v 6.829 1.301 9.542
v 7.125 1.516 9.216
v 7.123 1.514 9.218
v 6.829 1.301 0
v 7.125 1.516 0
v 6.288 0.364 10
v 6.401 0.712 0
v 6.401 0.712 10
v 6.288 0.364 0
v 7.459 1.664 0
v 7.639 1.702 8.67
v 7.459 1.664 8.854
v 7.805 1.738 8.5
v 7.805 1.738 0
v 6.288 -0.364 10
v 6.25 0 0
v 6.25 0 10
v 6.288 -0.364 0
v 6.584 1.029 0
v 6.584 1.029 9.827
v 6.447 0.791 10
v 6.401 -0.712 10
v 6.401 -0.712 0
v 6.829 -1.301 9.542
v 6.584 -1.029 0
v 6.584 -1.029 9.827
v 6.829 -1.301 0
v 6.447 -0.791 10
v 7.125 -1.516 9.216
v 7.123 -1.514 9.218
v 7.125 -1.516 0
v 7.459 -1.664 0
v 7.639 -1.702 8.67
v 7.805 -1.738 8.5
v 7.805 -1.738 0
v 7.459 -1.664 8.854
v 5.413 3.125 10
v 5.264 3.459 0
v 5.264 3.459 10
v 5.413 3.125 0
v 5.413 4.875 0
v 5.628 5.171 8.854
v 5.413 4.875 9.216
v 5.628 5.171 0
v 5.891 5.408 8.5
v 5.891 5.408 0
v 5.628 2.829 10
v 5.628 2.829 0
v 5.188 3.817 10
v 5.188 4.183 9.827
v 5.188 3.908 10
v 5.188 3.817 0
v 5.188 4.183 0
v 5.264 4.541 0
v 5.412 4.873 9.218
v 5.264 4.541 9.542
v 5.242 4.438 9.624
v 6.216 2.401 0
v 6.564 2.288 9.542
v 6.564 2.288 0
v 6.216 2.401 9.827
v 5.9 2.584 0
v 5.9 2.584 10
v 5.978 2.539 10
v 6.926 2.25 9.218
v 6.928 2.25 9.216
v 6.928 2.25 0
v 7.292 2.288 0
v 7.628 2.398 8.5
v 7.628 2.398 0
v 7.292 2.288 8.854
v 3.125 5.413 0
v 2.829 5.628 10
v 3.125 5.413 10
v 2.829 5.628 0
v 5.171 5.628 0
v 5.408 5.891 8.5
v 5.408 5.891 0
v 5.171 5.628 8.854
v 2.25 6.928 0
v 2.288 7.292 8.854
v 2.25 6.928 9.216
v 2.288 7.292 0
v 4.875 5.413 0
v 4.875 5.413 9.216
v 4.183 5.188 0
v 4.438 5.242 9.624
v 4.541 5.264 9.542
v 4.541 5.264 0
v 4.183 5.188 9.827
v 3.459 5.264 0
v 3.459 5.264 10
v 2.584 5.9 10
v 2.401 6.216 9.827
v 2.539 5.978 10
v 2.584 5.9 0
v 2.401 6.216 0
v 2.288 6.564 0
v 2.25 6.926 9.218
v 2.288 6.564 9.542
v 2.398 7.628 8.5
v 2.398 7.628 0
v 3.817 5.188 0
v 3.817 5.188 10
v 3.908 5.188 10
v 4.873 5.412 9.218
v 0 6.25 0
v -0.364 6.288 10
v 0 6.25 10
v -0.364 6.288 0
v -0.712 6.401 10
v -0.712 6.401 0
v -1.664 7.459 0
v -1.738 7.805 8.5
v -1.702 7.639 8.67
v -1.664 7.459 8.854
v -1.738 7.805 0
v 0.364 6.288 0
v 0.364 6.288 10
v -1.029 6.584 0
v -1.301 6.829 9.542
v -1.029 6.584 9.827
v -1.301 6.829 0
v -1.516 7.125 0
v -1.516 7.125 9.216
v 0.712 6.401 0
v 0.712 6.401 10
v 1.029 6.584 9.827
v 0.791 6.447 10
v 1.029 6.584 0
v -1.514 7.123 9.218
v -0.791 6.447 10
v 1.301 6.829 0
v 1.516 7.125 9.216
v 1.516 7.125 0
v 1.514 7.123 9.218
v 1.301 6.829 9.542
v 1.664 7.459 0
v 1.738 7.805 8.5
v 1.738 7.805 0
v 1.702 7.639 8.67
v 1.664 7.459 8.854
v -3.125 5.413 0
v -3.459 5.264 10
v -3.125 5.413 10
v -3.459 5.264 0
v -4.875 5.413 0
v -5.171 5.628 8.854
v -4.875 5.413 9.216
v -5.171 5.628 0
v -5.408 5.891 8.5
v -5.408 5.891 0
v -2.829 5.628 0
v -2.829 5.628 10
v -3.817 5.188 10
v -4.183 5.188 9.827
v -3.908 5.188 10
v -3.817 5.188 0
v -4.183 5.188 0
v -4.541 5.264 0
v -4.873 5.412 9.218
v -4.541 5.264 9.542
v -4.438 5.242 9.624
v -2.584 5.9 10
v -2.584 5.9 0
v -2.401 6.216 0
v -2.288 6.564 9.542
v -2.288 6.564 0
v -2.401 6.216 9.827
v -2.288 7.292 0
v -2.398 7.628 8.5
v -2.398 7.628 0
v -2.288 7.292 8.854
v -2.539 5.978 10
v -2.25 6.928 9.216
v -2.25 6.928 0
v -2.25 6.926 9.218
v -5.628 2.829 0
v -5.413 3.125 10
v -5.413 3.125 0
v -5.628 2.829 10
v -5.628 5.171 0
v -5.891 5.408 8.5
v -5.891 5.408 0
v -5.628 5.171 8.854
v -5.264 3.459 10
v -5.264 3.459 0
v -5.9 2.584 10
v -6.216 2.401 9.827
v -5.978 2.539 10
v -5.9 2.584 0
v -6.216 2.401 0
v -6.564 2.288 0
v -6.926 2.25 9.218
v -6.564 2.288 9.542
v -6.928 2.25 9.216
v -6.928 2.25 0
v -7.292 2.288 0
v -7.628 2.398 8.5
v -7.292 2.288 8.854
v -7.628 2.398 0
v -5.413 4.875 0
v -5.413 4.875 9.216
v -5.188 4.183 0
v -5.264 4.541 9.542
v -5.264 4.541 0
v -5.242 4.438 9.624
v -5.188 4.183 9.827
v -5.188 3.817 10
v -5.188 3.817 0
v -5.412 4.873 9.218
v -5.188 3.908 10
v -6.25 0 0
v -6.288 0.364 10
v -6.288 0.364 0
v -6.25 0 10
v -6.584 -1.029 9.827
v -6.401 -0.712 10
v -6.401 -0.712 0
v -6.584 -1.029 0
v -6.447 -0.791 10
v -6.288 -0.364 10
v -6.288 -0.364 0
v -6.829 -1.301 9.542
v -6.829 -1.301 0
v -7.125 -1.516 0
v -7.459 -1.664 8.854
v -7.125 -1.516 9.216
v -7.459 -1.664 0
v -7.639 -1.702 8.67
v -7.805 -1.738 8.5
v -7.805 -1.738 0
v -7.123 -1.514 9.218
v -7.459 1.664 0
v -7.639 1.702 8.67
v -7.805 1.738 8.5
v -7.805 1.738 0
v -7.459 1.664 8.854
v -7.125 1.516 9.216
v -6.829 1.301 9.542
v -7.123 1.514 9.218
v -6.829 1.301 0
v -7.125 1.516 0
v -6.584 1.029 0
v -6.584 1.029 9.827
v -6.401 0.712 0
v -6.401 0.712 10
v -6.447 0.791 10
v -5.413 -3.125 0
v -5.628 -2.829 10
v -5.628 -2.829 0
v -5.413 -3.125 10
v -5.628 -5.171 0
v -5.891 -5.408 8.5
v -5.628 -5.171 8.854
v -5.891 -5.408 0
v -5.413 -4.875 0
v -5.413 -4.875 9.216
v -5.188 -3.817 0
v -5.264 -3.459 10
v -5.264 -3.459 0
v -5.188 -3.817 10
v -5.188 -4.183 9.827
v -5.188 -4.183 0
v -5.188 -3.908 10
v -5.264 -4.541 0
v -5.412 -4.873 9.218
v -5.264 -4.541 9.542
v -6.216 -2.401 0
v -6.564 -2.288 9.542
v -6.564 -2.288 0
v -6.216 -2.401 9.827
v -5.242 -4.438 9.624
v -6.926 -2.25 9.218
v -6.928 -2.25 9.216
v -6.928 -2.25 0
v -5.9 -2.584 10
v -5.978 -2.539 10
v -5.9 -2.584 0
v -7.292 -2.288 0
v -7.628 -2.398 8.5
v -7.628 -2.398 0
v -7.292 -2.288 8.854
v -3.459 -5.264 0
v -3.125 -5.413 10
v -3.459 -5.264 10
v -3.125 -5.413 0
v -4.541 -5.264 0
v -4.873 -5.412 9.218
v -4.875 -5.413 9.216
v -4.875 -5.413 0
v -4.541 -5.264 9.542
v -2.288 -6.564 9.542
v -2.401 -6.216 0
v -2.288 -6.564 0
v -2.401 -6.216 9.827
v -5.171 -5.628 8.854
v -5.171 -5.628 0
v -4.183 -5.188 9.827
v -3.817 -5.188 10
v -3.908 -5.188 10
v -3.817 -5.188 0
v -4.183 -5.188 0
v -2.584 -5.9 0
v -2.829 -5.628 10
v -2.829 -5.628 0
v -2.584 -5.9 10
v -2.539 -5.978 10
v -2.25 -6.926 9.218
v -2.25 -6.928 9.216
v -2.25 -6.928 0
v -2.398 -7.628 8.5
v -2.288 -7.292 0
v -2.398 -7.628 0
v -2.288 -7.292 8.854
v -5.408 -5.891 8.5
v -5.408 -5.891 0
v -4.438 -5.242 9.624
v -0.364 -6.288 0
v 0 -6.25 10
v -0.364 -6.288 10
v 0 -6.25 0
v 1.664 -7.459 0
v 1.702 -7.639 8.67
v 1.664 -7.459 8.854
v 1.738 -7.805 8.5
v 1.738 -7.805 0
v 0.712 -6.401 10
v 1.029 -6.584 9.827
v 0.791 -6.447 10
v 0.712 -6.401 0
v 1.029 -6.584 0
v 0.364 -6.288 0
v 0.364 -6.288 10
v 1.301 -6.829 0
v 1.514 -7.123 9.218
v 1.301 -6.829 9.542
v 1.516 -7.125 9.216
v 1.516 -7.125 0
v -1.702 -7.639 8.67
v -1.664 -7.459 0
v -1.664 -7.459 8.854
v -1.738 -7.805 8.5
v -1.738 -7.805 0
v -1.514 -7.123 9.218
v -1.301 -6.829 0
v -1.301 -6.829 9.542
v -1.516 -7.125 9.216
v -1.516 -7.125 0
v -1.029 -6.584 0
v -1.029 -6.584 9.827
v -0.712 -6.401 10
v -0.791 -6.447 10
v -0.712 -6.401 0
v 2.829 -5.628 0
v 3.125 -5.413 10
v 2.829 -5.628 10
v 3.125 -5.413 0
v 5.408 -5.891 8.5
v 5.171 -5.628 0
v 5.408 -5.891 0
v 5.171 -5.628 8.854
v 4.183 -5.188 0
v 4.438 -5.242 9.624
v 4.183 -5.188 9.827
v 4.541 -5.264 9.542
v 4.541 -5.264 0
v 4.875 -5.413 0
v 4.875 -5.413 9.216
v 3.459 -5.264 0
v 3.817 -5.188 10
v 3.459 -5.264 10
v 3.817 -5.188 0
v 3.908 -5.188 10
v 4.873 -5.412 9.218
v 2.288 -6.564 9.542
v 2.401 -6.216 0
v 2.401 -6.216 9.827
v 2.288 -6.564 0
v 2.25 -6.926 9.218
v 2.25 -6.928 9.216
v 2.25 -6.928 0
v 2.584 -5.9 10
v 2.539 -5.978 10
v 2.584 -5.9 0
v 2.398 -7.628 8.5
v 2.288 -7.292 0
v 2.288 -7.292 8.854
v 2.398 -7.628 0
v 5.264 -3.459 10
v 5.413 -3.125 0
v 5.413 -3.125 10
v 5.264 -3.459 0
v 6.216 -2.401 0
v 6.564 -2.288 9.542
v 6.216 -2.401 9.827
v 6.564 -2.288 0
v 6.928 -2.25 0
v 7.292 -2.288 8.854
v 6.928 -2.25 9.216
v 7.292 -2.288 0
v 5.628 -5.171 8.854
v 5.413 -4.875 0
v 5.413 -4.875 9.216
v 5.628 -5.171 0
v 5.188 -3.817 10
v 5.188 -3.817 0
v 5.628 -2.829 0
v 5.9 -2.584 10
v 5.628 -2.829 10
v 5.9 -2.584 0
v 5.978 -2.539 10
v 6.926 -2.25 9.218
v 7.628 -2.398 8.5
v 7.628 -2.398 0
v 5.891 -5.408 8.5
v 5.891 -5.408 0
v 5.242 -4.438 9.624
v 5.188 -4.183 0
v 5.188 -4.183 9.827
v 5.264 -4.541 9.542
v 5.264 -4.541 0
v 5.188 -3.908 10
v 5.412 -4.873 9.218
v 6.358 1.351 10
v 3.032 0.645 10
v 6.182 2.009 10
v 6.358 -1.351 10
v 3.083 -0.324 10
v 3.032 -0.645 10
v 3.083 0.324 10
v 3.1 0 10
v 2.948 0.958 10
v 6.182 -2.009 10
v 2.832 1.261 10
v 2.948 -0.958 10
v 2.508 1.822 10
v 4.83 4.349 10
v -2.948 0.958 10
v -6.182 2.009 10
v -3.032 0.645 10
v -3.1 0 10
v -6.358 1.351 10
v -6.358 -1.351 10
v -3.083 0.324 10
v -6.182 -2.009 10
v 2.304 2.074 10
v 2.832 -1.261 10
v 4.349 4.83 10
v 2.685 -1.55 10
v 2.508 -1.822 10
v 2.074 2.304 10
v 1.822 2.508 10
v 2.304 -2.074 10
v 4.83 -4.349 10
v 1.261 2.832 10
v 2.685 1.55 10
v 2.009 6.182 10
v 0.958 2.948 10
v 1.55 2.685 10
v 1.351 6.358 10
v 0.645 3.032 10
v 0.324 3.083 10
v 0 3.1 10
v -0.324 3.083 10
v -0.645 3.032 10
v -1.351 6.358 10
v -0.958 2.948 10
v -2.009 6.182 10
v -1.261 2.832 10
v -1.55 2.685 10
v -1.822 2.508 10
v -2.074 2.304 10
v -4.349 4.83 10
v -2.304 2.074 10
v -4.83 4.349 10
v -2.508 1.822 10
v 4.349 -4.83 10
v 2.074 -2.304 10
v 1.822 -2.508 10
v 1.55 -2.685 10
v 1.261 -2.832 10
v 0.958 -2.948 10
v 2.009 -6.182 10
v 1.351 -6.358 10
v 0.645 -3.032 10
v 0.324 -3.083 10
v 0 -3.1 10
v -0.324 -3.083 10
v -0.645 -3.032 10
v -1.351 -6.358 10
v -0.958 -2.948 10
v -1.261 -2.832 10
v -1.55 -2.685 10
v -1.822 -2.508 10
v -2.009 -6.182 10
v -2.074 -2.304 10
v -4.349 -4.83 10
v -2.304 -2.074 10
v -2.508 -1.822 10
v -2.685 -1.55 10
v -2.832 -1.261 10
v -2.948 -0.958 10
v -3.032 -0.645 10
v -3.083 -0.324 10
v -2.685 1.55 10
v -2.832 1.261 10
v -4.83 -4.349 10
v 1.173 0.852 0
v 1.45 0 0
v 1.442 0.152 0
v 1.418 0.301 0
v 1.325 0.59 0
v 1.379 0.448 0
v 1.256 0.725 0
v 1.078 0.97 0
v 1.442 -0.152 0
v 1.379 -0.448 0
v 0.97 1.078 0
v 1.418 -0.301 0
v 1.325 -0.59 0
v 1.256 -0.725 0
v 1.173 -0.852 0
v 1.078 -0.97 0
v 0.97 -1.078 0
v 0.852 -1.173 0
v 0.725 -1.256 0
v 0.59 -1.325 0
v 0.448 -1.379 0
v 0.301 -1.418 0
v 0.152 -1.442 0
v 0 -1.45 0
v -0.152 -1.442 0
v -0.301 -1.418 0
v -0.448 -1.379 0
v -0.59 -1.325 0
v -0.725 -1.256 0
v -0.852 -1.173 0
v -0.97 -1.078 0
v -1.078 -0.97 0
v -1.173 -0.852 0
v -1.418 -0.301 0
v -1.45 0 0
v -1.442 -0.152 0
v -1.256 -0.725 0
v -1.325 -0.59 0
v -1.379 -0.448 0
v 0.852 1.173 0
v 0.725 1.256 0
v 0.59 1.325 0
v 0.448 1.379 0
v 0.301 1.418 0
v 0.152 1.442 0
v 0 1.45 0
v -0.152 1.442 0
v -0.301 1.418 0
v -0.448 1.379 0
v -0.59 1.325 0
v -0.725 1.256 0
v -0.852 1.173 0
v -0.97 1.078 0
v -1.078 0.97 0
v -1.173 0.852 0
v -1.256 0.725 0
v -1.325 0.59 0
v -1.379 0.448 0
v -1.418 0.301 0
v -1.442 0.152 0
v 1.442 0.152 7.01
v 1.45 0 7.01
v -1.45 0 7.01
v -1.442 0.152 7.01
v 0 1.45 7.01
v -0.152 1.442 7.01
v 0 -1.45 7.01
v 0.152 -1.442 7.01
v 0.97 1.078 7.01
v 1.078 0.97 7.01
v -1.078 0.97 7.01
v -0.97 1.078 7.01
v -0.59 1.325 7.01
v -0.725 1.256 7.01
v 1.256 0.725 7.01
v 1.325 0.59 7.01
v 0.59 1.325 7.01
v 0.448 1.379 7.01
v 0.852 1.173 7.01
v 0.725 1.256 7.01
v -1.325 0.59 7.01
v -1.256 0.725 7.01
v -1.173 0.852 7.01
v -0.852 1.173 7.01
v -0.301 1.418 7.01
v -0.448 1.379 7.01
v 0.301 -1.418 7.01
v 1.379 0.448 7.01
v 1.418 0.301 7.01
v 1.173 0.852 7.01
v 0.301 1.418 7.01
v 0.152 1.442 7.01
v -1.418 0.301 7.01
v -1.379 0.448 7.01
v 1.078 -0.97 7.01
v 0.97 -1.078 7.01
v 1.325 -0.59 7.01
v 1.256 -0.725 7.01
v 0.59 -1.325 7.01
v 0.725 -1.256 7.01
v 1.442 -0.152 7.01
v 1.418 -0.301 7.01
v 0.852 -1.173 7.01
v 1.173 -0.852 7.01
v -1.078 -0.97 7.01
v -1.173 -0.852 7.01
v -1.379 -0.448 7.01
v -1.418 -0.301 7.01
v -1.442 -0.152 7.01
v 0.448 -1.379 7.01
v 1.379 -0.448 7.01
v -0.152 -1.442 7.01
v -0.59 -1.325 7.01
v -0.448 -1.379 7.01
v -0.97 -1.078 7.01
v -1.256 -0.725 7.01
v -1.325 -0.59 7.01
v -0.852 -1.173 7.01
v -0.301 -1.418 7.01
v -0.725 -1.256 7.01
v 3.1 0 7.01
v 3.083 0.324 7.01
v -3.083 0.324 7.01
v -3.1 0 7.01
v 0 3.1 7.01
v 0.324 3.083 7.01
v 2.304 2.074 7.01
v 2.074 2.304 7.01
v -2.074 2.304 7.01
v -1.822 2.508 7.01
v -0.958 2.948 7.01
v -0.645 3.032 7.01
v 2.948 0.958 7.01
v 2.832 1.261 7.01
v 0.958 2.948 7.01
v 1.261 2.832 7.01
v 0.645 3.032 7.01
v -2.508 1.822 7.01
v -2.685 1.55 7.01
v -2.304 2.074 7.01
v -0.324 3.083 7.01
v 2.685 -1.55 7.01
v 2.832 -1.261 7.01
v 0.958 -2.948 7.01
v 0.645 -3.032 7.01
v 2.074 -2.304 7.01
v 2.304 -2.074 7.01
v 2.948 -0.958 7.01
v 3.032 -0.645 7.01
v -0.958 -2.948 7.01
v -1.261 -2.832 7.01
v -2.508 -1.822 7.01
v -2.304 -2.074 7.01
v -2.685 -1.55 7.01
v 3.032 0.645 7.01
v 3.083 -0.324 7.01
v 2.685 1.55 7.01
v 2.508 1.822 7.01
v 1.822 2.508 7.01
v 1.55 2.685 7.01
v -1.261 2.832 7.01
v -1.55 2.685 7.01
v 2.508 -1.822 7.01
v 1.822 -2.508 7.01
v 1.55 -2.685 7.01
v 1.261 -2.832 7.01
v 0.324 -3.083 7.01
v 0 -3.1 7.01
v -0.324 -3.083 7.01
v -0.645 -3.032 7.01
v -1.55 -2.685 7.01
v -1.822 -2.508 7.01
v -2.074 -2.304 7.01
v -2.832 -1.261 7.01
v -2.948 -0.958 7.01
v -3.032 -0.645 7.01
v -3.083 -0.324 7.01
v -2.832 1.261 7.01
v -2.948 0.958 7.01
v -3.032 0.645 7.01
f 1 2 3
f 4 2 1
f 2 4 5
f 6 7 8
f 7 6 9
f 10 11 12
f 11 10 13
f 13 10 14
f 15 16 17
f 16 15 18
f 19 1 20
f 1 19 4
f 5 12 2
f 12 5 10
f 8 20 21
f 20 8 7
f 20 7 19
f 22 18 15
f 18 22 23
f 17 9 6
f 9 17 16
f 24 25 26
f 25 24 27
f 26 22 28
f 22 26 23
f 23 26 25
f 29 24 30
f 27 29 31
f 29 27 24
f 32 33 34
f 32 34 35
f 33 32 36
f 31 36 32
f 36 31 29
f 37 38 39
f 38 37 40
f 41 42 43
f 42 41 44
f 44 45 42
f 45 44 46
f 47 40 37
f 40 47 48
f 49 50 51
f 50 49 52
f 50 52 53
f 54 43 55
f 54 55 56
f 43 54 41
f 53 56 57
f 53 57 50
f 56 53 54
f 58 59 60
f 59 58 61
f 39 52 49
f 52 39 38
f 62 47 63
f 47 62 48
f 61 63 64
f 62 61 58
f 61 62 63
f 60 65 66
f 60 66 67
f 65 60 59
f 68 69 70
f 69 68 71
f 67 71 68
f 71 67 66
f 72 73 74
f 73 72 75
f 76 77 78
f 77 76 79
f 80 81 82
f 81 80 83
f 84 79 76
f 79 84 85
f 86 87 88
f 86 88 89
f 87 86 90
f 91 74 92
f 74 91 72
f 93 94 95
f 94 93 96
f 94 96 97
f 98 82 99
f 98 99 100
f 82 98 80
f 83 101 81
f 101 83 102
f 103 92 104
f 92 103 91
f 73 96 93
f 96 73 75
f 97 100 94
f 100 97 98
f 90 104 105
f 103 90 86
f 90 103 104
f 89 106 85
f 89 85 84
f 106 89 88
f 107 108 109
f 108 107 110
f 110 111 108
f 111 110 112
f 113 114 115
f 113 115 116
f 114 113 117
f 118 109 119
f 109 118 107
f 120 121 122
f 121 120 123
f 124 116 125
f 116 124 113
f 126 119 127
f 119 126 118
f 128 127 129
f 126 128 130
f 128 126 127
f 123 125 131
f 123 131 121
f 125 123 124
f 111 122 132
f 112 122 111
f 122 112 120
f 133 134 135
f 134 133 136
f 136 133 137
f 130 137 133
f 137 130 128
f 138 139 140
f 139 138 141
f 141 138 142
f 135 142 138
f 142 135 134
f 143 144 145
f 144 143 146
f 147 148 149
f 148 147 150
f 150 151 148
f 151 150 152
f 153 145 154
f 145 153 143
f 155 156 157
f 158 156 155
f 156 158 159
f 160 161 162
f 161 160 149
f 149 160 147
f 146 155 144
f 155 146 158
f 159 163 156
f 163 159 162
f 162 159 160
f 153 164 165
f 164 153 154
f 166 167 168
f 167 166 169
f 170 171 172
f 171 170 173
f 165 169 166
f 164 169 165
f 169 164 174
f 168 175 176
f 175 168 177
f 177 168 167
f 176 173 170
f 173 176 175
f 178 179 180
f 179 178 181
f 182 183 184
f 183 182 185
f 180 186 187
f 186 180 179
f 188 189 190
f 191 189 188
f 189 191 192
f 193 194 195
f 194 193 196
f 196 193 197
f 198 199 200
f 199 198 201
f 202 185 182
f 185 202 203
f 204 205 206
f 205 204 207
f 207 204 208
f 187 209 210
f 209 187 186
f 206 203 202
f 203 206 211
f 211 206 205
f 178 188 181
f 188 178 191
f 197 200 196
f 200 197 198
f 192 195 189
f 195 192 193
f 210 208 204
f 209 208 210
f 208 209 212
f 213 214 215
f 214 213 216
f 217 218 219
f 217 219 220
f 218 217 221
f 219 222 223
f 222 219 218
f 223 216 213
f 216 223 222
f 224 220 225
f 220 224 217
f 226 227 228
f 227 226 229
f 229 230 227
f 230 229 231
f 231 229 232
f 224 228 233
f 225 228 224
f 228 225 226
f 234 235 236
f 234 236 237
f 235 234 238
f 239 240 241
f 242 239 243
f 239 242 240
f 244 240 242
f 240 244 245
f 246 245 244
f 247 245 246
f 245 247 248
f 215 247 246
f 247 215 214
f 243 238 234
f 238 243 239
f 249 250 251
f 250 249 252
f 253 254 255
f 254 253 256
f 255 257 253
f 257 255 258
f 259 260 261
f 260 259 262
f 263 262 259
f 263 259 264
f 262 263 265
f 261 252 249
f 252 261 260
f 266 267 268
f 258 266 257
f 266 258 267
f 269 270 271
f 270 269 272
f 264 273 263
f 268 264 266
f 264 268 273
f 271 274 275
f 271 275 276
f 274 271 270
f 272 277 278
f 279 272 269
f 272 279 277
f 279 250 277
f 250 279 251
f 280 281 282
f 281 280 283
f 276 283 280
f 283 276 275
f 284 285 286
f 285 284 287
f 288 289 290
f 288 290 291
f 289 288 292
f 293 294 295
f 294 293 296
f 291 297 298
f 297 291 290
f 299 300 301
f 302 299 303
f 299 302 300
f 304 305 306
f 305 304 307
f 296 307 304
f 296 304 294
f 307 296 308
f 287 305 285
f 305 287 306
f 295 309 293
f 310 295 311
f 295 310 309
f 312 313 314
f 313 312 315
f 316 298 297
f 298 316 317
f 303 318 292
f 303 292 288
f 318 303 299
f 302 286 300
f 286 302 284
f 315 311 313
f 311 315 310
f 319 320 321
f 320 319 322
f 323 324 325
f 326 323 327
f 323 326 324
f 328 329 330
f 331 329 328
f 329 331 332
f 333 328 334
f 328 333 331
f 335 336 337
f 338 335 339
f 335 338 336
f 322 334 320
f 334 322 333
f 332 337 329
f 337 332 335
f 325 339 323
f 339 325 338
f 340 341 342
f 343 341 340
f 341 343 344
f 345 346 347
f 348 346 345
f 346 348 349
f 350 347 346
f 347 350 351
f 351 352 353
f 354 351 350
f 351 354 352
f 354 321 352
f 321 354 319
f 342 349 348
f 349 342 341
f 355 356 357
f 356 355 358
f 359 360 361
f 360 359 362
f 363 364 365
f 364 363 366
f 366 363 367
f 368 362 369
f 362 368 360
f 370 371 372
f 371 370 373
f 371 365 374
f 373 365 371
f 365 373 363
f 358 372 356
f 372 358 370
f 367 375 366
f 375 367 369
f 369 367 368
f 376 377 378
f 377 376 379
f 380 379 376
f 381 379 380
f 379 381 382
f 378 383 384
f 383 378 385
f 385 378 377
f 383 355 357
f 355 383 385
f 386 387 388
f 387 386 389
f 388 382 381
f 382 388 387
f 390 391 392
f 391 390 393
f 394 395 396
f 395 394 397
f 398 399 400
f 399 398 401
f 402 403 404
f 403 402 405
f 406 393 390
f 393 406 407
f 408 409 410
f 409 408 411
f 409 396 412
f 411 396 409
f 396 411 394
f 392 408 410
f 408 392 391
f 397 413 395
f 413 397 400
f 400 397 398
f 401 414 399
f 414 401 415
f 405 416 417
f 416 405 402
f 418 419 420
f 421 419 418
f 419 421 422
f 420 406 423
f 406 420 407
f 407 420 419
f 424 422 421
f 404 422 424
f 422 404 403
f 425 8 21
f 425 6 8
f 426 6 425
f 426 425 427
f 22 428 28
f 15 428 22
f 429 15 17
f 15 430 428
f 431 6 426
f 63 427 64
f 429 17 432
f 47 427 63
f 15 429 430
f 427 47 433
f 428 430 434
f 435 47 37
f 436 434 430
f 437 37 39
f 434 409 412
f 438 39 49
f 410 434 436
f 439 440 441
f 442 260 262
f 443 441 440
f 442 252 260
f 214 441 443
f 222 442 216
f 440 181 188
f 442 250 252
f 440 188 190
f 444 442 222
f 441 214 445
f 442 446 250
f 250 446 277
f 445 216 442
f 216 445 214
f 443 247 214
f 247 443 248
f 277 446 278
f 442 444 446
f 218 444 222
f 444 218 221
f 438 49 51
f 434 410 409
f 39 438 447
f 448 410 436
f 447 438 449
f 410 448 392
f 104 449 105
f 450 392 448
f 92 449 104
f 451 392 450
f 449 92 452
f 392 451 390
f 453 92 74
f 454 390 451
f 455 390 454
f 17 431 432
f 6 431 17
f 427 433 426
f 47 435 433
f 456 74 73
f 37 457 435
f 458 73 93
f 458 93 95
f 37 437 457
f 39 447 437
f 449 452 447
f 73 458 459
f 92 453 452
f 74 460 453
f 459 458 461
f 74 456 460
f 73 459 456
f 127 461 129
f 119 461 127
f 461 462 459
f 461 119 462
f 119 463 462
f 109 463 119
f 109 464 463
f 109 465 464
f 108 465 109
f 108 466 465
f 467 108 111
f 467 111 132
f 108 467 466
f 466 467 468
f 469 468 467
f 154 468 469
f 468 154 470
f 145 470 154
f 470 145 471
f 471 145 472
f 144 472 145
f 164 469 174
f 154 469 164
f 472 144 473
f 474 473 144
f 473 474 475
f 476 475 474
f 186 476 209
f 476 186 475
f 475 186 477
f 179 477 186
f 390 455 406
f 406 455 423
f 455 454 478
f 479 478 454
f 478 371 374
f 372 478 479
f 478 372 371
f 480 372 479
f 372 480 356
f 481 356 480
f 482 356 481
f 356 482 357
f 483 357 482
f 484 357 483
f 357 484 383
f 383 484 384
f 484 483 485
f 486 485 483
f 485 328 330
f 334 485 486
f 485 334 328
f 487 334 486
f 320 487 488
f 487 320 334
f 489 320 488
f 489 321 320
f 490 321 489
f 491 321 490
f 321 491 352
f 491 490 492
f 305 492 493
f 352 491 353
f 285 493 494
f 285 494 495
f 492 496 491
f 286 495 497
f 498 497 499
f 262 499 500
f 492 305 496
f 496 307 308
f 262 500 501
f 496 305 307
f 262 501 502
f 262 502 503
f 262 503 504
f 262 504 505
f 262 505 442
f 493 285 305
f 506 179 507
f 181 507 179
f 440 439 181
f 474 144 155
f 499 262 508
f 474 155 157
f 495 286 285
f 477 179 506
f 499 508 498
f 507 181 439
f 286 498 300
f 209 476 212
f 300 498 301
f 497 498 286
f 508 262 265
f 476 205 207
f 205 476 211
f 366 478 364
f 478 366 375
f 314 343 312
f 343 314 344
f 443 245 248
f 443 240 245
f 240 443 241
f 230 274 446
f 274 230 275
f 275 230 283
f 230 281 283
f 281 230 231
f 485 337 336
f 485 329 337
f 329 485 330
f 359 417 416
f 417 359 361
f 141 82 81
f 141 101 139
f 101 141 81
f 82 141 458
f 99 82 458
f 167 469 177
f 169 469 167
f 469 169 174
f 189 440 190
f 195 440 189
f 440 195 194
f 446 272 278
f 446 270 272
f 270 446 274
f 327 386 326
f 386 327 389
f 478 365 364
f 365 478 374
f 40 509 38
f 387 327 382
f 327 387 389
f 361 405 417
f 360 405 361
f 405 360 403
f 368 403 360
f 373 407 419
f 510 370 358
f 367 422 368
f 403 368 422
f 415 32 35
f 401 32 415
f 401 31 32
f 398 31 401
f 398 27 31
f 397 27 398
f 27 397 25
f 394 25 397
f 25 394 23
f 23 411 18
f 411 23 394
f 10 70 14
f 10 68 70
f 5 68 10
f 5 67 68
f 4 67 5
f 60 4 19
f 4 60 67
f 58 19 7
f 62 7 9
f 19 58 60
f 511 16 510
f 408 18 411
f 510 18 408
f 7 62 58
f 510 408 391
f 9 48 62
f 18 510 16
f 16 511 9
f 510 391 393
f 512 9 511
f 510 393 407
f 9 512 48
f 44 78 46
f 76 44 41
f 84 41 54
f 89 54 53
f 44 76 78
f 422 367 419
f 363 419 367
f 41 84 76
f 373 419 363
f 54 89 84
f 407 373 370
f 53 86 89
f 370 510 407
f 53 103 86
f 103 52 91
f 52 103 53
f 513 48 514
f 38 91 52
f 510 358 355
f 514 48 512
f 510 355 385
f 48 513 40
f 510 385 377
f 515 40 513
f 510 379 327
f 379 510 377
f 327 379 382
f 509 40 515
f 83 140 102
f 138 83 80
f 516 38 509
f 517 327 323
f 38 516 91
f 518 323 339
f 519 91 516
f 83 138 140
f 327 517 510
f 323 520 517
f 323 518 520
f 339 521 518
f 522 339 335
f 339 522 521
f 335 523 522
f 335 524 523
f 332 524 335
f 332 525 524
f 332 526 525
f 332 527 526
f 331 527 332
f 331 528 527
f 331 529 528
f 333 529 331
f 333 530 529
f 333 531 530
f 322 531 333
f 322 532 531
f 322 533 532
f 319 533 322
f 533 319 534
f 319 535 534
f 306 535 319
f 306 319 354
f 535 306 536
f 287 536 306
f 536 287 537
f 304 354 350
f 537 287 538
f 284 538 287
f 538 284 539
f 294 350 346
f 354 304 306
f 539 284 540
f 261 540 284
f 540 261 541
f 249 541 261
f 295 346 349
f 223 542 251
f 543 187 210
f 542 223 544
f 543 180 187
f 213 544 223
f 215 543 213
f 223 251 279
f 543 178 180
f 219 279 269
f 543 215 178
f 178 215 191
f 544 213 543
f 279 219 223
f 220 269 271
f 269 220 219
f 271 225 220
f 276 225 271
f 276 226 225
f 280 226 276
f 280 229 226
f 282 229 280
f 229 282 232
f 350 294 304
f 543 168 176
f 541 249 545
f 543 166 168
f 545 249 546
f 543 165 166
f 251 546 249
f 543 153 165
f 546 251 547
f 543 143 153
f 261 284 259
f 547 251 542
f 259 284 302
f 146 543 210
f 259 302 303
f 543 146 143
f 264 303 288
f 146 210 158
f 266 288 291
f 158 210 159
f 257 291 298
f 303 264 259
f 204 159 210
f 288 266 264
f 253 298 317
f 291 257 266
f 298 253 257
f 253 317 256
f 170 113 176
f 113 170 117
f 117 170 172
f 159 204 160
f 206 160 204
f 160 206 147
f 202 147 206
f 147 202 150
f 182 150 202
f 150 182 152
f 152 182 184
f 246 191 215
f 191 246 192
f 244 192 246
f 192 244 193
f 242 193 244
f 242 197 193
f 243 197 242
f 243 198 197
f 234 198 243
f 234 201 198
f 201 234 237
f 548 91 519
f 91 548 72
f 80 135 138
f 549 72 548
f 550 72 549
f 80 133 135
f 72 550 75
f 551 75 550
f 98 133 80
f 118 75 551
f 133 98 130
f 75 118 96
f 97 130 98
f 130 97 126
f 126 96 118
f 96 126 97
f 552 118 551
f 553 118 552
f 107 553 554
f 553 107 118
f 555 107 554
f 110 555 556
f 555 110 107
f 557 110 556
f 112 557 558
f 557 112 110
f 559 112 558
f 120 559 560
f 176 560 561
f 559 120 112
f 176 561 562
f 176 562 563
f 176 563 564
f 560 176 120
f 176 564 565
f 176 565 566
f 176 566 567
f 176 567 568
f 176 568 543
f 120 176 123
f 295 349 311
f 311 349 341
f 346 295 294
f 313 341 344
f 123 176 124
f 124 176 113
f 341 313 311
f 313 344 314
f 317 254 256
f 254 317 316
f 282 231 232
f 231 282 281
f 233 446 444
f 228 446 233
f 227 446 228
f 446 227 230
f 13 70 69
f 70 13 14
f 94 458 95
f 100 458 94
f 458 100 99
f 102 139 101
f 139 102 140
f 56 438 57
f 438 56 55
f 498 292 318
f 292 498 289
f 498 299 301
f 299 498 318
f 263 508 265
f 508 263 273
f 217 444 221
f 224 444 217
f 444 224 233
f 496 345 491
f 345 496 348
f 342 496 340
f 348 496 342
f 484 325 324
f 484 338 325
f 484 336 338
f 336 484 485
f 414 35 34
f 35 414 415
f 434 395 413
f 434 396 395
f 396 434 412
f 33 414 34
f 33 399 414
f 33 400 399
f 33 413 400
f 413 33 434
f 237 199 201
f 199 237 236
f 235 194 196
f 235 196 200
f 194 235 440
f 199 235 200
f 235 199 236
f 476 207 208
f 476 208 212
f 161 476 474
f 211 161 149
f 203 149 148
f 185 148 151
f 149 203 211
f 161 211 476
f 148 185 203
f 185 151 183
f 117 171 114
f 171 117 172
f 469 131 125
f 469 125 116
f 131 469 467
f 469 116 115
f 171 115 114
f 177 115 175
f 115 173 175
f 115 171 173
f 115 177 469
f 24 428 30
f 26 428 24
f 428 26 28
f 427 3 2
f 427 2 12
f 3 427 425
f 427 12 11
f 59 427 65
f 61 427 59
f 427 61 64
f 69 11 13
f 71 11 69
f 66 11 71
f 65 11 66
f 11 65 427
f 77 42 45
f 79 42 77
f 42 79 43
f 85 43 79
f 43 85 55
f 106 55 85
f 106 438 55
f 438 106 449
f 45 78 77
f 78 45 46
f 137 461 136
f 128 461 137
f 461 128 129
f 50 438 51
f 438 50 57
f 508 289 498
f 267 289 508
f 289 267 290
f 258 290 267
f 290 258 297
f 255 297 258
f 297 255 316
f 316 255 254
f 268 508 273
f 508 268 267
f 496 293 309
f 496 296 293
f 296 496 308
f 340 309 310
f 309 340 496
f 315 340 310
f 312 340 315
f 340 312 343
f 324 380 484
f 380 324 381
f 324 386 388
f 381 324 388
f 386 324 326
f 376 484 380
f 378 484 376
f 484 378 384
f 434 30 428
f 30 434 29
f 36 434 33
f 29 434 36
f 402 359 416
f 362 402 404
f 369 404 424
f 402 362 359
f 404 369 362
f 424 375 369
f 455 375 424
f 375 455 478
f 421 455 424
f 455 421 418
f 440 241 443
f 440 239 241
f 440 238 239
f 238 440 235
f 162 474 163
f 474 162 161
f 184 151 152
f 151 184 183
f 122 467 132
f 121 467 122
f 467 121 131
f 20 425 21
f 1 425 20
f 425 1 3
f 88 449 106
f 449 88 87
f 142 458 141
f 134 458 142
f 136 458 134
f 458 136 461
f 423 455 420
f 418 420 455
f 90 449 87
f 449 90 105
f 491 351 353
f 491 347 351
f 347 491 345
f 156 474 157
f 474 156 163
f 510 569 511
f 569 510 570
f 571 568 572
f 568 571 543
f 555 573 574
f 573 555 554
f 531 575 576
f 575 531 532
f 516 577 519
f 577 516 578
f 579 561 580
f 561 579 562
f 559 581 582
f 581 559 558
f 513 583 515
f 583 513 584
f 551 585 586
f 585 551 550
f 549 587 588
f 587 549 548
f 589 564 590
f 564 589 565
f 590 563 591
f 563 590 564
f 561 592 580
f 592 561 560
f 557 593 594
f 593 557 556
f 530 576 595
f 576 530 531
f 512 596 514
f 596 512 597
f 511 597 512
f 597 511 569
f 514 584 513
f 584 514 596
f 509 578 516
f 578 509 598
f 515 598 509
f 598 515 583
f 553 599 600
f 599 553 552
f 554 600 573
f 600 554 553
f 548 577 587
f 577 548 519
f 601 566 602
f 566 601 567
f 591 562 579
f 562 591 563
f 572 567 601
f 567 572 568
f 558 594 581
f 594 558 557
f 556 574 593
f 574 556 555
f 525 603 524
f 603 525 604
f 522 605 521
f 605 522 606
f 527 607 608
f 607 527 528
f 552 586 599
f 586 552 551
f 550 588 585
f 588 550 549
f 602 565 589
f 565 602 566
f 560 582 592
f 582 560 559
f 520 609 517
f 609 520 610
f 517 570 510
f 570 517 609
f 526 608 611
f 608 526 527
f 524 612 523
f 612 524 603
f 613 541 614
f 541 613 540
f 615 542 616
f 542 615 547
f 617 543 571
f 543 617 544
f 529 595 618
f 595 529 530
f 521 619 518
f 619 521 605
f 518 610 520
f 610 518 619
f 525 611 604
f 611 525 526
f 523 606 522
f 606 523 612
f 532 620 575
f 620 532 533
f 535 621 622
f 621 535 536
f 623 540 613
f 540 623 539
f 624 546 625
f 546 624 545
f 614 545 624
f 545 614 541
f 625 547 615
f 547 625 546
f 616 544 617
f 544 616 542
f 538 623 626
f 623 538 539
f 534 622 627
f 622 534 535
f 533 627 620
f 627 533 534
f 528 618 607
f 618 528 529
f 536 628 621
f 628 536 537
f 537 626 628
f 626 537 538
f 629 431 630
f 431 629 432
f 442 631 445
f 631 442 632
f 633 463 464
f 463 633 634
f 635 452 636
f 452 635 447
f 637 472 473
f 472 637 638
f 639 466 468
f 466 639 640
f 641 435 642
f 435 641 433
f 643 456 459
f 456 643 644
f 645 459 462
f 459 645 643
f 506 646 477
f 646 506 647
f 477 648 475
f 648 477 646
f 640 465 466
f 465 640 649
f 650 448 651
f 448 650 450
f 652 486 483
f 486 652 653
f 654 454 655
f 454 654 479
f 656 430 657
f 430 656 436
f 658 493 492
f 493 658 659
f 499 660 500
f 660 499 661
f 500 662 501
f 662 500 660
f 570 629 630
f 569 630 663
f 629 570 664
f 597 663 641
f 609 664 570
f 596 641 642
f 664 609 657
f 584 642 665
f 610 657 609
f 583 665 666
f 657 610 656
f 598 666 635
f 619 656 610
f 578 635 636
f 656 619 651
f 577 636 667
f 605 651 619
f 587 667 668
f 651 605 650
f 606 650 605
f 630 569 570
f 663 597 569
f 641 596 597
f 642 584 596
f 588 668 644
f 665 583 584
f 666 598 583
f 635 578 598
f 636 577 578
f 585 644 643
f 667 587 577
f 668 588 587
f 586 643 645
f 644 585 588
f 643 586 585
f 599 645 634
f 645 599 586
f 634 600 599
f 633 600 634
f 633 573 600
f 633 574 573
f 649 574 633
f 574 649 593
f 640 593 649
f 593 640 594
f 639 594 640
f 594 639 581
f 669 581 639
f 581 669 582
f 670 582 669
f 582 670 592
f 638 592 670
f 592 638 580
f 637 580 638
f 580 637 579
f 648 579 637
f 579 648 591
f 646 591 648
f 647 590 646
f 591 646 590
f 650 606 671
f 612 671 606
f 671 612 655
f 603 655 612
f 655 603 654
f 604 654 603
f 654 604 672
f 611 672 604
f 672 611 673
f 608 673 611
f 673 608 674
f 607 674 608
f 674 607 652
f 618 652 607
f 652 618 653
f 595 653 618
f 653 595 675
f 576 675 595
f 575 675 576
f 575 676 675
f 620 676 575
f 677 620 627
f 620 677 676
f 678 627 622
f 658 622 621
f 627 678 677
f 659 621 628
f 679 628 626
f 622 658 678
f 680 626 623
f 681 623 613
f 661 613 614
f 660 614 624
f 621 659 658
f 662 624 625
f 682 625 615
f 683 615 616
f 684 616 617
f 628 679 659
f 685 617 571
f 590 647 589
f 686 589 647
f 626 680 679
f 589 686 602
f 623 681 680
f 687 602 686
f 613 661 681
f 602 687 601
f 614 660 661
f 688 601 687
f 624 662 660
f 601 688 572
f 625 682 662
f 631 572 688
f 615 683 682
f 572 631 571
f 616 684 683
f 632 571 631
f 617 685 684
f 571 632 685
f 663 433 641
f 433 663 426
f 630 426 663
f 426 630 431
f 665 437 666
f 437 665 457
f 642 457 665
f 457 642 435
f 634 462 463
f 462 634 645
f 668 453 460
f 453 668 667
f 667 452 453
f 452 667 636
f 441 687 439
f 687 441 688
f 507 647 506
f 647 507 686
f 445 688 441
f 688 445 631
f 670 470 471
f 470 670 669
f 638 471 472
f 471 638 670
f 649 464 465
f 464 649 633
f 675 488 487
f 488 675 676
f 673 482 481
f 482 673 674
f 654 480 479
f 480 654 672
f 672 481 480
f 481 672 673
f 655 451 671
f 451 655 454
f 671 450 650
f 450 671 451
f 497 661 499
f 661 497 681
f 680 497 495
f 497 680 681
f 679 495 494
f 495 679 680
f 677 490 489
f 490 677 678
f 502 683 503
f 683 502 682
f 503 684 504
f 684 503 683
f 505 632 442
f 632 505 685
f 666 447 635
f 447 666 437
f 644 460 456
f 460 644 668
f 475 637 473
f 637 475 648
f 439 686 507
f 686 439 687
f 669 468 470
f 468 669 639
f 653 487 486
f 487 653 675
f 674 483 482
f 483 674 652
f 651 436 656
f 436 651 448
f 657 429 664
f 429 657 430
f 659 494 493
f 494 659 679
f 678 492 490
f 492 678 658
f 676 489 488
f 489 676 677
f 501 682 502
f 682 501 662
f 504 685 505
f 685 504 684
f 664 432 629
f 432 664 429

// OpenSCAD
// --- THUMBSCREW KNOB FOR 3mm SCREW ---

// --- 1. KNOB PARAMETERS ---
knob_dia = 16.0;       // Outer diameter of the knob
knob_height = 10.0;    // Total height of the knob
top_chamfer = 1.5;     // Chamfer on the top edge for thumb comfort

// --- 2. GRIP (FLUTED KNURLING) ---
grip_count = 12;       // Number of grip indents around the edge
grip_dia = 3.5;        // Diameter of the grip cutouts

// --- 3. SCREW DIMENSIONS (3x18mm Self Tapping) ---
// Note: Standard 3mm pan heads are usually ~5.5mm. 
// Set to 6.2mm to allow clearance for easy insertion.
head_dia = 6.2;        // Diameter of the top pocket for the screw head
head_depth = 3.0;      // Depth of the top pocket 
shaft_dia = 2.9;       // Clearance hole for the 3mm threads to pass through

$fn = 60;

// --- MAIN ASSEMBLY ---
difference() {
    
    // 1. The main chamfered knob body
    rotate_extrude() {
        polygon([
            [0, 0],
            [knob_dia/2, 0],
            [knob_dia/2, knob_height - top_chamfer],
            [(knob_dia/2) - top_chamfer, knob_height],
            [0, knob_height]
        ]);
    }
    
    // 2. Cutouts for the fluted grip
    for(i = [0 : grip_count - 1]) {
        rotate([0, 0, i * (360 / grip_count)])
            translate([knob_dia / 2, 0, -1])
            cylinder(d=grip_dia, h=knob_height + 2, $fn=30);
    }
    
    // 3. Cutouts for the screw
    // Shaft hole through the center
    translate([0, 0, -1]) 
        cylinder(d=shaft_dia, h=knob_height + 2);
        
    // Counterbore pocket for the screw head (Insert from Top)
    translate([0, 0, knob_height - head_depth + 0.01]) 
        cylinder(d=head_dia, h=head_depth + 1);
}
